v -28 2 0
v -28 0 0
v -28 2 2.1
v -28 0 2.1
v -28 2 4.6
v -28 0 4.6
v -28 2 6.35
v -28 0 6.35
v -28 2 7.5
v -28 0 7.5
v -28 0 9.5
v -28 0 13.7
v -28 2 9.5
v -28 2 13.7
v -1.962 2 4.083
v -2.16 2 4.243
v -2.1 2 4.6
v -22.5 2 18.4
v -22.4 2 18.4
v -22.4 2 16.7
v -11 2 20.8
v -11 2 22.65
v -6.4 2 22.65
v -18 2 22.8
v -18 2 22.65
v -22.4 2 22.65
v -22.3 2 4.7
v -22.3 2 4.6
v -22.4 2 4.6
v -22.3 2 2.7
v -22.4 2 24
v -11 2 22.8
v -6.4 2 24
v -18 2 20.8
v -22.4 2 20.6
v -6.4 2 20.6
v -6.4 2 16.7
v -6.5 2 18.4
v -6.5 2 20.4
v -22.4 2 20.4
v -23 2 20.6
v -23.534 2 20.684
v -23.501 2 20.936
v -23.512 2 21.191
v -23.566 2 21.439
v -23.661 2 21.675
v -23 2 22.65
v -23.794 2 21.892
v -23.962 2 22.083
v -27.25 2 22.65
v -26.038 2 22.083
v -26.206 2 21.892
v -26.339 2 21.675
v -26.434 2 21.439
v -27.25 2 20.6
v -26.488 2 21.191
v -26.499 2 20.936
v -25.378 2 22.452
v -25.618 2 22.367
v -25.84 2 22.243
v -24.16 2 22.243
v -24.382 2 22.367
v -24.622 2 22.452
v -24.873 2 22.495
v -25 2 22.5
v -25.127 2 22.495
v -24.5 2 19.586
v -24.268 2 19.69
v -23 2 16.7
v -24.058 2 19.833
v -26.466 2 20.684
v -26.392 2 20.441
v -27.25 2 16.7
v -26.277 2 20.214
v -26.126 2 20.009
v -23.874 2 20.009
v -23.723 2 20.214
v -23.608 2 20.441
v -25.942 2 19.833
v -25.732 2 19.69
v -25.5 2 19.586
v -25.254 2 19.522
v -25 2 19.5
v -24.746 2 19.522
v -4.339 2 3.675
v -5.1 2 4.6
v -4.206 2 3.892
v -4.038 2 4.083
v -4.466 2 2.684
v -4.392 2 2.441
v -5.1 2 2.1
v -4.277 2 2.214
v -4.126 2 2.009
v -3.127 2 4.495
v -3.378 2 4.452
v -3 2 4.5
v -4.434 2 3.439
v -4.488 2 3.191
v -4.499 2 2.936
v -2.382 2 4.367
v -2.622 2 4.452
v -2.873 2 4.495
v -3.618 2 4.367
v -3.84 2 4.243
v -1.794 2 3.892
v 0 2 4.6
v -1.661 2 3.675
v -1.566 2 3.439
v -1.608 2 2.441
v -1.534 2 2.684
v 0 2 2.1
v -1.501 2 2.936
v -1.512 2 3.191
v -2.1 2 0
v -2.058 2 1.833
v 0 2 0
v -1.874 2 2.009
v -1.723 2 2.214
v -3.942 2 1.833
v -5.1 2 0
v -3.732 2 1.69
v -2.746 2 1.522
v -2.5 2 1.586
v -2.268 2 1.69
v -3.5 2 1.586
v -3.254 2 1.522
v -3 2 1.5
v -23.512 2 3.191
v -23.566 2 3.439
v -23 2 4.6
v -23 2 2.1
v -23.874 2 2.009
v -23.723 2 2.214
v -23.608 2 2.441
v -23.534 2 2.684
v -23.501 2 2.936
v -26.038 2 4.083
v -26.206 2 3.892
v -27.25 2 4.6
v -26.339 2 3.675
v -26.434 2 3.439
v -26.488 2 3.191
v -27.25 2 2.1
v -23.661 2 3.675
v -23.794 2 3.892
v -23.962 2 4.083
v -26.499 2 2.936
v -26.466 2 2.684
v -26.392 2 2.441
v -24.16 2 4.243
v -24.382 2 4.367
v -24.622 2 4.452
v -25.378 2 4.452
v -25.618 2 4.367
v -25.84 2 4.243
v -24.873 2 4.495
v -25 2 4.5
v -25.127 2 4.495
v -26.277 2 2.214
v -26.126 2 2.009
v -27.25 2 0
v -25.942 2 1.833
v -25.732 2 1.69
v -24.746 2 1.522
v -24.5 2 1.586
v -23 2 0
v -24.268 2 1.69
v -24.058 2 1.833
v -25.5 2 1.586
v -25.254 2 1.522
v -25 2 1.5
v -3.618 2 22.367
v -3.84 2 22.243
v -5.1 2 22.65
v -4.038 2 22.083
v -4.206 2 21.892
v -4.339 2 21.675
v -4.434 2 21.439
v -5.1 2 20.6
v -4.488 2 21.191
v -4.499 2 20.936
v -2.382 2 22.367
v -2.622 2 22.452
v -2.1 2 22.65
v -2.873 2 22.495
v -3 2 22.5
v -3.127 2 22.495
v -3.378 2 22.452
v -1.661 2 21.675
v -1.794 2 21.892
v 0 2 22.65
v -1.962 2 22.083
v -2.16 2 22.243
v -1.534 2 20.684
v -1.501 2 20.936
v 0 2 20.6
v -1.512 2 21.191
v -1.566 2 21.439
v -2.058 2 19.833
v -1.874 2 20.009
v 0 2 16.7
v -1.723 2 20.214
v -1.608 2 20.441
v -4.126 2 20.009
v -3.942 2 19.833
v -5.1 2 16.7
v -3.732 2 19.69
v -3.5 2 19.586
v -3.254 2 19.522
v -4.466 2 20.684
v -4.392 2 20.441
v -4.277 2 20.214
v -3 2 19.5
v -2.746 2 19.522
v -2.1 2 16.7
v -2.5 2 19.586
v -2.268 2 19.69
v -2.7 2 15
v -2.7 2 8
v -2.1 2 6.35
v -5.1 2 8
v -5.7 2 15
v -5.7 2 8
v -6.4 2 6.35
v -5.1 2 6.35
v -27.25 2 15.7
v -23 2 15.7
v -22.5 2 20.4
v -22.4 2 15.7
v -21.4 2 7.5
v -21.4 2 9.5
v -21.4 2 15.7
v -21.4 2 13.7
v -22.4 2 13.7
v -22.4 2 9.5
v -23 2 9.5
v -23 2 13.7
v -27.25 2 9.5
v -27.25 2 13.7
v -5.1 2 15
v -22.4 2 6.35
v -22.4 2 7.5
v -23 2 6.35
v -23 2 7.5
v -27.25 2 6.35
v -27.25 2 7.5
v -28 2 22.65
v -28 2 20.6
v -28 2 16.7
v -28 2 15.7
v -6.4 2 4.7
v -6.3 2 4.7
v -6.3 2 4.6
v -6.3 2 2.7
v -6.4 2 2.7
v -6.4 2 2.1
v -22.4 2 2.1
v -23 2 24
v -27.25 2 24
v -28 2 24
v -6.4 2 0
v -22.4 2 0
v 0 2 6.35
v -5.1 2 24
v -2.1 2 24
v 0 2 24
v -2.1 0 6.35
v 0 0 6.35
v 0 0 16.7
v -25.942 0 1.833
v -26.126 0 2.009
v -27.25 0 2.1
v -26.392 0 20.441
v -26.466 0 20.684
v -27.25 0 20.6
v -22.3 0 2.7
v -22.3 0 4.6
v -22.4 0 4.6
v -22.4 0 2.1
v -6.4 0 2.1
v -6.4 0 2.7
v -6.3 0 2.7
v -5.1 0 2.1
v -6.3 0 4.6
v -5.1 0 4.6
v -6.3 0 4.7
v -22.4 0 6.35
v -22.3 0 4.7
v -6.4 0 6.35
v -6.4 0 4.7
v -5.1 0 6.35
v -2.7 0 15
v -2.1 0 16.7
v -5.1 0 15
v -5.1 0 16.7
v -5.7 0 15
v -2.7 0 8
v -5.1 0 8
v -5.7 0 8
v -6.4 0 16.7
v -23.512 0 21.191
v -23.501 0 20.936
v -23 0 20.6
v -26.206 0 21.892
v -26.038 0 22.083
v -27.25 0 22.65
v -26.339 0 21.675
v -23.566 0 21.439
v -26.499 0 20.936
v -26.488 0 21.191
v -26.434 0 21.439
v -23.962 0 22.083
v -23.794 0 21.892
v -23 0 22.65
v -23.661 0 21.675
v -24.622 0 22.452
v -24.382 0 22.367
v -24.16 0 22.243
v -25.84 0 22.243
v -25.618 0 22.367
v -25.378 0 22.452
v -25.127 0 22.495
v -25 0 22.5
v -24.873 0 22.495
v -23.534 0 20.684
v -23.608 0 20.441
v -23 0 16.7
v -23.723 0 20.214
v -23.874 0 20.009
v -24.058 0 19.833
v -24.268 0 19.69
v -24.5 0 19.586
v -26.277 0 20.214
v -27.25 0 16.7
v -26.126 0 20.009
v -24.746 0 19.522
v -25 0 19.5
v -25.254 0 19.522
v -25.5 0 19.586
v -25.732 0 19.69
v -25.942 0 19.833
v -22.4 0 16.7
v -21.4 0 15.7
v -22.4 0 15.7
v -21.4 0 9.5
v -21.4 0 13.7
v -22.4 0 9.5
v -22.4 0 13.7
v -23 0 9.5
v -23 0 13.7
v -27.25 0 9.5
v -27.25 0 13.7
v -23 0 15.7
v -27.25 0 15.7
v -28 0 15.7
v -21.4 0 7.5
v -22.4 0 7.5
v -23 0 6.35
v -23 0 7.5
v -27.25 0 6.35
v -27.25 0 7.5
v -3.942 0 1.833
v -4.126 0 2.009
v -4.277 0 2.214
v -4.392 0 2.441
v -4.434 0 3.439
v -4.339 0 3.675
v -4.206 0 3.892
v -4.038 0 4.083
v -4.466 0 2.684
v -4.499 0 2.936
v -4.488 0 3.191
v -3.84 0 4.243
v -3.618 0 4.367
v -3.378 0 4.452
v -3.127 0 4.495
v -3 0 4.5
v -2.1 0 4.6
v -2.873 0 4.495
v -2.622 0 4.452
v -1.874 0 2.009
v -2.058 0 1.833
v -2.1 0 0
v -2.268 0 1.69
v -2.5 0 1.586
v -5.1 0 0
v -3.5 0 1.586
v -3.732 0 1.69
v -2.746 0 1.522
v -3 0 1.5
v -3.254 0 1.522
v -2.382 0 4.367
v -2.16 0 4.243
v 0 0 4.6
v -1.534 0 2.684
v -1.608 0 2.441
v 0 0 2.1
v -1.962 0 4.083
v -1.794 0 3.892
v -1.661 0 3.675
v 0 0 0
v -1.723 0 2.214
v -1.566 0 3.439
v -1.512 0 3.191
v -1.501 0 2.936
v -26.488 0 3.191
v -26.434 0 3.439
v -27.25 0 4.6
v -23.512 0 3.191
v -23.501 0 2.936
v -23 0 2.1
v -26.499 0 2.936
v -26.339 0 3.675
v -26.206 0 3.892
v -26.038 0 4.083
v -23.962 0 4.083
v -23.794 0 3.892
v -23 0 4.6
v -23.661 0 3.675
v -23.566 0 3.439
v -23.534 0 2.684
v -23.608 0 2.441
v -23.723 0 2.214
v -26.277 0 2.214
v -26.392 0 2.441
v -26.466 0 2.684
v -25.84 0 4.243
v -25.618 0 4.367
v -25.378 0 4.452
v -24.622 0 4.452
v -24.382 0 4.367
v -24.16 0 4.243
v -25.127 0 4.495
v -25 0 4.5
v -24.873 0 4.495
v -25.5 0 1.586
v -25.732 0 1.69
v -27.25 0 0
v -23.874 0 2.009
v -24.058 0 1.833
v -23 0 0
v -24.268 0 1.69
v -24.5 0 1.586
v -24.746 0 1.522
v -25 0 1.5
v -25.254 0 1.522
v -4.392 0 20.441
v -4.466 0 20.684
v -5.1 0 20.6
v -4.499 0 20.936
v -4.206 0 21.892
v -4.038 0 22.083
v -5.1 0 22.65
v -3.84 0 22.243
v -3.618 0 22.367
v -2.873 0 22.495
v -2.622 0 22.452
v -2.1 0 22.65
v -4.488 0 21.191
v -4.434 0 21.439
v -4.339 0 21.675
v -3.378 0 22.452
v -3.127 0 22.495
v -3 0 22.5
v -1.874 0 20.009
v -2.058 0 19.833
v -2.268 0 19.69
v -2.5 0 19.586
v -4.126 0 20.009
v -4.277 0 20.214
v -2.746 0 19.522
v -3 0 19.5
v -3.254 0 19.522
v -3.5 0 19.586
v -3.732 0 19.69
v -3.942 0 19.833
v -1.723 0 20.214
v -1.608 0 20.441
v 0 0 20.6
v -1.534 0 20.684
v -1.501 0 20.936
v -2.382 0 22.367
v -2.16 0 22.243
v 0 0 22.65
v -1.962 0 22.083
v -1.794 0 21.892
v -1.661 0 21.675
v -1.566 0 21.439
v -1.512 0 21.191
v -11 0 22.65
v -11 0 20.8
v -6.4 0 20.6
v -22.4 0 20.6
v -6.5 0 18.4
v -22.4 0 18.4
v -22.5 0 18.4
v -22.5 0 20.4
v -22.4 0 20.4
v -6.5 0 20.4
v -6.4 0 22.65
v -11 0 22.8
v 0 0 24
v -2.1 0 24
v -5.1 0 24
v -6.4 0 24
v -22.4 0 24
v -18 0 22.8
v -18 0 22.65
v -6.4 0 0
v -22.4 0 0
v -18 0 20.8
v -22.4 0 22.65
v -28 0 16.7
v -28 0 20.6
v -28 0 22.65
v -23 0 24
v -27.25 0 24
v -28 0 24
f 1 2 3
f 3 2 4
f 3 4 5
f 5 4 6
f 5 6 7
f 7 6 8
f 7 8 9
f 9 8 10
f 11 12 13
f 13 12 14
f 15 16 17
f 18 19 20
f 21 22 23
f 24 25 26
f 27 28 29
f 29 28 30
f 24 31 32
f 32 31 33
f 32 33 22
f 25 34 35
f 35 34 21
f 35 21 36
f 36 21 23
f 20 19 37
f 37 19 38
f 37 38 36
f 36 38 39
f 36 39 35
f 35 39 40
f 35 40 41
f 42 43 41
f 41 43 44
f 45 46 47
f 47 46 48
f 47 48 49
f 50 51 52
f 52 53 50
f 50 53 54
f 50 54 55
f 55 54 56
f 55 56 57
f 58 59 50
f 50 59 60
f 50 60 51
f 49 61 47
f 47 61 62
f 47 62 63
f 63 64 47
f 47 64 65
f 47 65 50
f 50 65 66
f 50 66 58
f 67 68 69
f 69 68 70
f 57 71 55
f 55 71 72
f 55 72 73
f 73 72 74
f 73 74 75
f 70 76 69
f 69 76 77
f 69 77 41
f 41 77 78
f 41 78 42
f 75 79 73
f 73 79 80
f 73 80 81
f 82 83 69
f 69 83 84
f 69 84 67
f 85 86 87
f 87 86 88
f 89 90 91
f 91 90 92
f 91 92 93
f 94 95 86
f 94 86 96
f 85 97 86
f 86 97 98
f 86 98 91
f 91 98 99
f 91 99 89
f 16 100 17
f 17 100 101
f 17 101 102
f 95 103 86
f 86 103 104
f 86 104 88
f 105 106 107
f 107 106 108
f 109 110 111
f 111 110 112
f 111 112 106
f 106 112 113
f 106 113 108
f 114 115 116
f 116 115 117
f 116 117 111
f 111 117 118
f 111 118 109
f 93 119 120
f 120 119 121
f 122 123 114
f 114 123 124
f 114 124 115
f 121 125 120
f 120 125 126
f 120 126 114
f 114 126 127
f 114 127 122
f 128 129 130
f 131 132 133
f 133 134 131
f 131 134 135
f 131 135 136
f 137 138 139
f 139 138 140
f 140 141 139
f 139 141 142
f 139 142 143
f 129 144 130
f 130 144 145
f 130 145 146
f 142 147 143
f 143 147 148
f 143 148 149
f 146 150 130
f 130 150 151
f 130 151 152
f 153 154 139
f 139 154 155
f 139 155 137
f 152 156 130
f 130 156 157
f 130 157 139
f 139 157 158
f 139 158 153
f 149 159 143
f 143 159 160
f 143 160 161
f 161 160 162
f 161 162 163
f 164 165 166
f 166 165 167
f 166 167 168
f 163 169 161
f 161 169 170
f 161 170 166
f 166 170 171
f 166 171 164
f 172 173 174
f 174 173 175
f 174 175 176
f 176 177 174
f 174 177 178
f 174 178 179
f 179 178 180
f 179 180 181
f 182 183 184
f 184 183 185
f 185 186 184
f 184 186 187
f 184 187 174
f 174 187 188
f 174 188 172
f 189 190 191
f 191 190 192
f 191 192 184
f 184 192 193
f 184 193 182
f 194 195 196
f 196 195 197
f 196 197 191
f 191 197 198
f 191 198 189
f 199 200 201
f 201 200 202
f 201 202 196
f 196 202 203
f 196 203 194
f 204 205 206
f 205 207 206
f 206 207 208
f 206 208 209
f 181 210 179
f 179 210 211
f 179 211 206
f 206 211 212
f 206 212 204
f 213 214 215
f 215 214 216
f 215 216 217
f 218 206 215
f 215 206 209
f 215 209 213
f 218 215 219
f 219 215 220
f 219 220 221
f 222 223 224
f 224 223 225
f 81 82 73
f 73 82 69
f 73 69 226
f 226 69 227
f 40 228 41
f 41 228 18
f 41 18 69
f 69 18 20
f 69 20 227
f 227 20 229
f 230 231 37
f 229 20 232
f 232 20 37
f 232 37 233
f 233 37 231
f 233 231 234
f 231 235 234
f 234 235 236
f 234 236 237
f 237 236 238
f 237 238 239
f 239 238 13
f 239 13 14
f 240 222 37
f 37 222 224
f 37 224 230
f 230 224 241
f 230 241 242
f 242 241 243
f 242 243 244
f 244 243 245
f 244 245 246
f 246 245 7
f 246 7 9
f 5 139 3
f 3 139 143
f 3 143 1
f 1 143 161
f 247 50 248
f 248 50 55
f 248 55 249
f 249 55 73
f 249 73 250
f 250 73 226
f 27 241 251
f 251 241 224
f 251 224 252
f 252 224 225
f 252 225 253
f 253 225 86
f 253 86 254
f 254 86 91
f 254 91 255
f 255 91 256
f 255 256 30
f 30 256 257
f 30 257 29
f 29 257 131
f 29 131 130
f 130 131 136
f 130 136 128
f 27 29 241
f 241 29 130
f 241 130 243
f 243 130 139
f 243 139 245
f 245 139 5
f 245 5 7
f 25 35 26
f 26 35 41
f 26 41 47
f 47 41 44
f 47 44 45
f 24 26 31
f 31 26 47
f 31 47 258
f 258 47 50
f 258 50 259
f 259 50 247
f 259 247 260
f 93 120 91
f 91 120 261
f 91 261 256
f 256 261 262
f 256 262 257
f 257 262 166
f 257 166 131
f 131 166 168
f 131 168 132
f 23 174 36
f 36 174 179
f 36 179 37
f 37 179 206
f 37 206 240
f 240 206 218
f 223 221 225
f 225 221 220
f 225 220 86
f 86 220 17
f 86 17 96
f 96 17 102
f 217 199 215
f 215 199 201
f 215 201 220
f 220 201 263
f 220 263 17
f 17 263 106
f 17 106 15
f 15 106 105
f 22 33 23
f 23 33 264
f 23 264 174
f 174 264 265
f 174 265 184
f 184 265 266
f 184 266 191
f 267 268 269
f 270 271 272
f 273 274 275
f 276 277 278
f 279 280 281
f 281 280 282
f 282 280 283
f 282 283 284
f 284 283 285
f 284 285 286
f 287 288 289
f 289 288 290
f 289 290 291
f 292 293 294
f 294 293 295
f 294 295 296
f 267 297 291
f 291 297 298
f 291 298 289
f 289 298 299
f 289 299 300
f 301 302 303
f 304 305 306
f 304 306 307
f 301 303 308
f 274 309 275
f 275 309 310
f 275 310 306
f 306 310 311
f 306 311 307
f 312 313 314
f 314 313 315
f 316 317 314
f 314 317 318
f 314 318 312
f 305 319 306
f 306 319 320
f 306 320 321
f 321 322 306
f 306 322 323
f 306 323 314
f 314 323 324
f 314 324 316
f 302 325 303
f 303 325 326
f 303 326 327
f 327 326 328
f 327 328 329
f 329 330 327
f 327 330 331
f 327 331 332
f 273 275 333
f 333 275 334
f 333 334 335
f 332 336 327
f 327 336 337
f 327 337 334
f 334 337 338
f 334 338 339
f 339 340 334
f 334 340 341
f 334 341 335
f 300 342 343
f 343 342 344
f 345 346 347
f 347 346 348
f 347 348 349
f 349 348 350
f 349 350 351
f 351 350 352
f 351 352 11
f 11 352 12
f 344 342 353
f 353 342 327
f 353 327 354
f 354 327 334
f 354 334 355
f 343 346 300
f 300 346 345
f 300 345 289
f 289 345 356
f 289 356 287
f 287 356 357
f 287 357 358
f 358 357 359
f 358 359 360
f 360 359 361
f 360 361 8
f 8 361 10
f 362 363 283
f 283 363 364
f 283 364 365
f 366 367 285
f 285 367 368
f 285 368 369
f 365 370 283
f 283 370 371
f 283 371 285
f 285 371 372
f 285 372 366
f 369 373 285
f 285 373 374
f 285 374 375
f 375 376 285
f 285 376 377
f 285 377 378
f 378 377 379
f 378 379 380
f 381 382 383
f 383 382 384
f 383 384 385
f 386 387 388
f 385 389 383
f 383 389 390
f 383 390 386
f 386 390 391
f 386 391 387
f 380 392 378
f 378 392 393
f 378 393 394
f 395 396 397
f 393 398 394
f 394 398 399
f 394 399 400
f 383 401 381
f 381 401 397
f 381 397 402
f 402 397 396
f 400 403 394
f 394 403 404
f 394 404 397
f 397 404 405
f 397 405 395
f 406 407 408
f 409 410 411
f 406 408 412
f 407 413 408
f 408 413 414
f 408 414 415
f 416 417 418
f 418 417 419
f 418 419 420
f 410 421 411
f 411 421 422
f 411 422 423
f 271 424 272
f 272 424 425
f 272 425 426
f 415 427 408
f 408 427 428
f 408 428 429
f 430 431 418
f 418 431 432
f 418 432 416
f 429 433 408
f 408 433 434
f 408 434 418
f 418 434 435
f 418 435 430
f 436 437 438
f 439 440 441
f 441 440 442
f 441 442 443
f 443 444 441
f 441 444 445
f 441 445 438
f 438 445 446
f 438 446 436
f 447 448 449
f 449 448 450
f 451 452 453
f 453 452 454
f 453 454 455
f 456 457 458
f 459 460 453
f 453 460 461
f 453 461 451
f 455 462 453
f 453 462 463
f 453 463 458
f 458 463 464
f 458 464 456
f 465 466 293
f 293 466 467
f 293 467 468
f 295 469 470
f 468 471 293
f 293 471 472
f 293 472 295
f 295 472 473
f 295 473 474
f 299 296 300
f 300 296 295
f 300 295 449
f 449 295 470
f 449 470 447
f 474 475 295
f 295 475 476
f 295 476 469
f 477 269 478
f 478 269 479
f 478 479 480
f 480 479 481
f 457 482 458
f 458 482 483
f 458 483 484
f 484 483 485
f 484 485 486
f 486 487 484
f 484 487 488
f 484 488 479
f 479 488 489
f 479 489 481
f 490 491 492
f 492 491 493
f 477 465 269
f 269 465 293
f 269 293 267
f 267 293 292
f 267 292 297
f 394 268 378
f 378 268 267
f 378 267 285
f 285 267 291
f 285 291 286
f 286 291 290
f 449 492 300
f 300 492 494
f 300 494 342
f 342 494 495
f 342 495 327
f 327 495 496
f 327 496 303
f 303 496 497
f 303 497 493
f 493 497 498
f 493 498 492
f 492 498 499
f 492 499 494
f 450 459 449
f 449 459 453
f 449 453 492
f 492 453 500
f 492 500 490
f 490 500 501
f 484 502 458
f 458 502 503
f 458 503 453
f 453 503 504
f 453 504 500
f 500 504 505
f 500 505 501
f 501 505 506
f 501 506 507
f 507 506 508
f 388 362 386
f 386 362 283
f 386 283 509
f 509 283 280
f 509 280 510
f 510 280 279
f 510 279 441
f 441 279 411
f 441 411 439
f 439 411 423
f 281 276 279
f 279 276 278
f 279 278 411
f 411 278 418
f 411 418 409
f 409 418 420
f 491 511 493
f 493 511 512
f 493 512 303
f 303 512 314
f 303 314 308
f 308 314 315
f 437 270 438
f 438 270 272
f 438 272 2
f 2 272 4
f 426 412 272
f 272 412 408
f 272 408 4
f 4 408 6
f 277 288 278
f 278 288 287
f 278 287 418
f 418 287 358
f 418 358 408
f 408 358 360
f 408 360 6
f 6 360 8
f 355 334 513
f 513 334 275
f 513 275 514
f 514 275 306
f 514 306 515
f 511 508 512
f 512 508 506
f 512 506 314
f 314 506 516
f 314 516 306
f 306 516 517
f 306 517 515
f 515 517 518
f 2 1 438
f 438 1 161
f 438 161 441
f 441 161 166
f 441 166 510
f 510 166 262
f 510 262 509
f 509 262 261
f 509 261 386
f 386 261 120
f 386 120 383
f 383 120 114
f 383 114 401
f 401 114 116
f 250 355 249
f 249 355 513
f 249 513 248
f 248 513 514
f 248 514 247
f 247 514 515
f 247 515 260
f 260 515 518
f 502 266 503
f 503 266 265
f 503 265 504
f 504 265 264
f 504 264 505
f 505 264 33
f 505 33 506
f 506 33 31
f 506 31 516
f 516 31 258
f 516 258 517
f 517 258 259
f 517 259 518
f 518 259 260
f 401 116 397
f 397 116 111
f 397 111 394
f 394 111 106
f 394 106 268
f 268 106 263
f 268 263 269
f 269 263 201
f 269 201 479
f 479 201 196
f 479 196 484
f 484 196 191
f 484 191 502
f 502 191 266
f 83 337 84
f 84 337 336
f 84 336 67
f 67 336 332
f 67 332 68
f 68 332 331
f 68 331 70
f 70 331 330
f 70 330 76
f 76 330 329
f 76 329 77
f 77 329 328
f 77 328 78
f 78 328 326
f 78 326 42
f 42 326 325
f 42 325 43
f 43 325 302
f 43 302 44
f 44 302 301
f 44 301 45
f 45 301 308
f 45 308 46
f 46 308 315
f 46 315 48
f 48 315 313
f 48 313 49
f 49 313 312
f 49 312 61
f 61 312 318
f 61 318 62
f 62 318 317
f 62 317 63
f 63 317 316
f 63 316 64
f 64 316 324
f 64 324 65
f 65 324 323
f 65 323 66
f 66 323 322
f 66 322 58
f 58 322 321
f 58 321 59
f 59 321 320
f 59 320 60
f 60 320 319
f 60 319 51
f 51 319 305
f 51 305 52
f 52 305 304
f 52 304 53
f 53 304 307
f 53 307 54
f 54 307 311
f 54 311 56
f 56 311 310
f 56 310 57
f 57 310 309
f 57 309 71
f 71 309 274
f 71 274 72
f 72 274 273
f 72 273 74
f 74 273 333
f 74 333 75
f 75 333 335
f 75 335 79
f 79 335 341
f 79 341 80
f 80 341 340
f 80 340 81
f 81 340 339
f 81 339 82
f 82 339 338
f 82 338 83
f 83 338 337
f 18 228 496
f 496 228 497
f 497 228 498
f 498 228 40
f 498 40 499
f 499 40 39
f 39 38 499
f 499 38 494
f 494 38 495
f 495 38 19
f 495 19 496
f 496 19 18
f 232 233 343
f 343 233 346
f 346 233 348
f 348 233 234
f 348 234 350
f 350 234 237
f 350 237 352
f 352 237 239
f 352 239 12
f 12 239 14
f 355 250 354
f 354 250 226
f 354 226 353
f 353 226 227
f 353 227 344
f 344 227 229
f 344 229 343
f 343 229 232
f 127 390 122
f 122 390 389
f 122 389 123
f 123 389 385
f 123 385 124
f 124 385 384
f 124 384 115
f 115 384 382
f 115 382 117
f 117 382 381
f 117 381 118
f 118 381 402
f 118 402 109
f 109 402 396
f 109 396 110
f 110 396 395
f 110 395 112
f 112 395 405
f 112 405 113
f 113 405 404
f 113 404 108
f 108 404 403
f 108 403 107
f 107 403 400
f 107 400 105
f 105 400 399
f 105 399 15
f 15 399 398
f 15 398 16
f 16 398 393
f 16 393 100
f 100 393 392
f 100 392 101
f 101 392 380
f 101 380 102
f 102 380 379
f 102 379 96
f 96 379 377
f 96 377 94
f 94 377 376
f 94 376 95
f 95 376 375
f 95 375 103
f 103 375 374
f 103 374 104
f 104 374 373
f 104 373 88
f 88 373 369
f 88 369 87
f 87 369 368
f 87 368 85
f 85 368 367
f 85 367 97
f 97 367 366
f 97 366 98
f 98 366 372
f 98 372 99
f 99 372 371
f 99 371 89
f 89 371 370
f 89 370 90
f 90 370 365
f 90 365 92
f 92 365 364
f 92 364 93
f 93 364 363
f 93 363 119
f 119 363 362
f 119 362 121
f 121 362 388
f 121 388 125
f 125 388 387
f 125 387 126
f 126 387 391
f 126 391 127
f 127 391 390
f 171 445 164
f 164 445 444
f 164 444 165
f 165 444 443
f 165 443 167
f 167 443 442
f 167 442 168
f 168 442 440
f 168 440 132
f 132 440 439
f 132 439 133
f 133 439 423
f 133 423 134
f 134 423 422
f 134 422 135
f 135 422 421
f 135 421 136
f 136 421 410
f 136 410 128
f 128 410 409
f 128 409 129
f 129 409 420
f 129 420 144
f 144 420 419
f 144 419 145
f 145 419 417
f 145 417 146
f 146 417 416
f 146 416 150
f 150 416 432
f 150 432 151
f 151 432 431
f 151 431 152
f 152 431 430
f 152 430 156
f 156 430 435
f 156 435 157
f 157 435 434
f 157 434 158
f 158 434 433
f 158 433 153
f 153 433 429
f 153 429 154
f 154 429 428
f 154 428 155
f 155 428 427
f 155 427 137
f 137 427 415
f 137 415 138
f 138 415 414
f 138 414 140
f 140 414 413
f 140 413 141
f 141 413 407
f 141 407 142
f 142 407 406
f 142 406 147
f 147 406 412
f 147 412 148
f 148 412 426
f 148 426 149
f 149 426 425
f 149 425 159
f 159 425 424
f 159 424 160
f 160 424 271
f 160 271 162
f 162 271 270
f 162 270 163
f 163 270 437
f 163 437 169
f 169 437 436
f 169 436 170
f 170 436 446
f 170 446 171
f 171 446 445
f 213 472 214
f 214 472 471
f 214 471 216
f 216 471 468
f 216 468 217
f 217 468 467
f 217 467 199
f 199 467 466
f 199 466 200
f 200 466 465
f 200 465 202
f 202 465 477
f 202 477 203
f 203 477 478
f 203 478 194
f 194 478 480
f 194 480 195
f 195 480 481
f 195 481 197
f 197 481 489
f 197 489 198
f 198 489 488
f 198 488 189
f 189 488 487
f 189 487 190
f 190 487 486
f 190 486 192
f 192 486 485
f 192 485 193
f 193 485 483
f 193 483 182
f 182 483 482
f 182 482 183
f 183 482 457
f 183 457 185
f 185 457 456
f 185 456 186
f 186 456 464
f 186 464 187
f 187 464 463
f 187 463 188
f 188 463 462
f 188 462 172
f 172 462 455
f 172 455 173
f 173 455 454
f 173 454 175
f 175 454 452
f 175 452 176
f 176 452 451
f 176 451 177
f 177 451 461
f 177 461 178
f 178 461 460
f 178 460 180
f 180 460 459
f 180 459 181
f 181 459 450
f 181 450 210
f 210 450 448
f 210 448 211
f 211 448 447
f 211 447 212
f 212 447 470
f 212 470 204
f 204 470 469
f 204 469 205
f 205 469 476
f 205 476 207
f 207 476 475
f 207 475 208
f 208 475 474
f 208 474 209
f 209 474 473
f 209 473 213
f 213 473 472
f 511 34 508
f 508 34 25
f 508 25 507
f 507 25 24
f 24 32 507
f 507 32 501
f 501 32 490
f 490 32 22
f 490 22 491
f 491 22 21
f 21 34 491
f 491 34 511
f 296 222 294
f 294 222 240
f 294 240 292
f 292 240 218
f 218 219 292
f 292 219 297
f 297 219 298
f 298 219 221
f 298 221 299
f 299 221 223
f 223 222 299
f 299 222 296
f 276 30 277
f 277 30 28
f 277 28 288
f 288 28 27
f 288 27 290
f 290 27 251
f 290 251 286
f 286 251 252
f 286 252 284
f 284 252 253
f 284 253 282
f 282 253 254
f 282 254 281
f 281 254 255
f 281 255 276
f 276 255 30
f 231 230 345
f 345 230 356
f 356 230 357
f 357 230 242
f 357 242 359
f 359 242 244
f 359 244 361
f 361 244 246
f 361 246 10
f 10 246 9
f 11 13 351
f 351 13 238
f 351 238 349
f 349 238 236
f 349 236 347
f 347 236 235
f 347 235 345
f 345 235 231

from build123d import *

# Parameters (mm, degrees)
SKETCH_1_W          = 28
SKETCH_1_H          = 24
EXTRUDE_1_DEPTH     = 2
SKETCH_1_5_R        = 1.5
SKETCH_1_5_W        = 7
SKETCH_1_5_H        = 2
SKETCH_1_5_W_2      = 3
SKETCH_1_5_H_2      = 7
SKETCH_1_5_W_3      = 16
SKETCH_1_5_W_4      = 6.6
CUT_EXTRUDE_1_DEPTH = 37.932370625


with BuildPart() as part:
    # 草图1 → 凸台-拉伸1 (new body)
    with BuildSketch(Plane(origin=(0, 0, 0), x_dir=(1, 0, 0), z_dir=(0, 1, 0))):
        with Locations((-14, -12)):
            Rectangle(SKETCH_1_W, SKETCH_1_H)
    extrude(amount=EXTRUDE_1_DEPTH)

    # 草图1<5> → 切除-拉伸1 (cut, through all)
    with BuildSketch(Plane(origin=(0, 0, 0), x_dir=(1, 0, 0), z_dir=(0, 1, 0))):
        with Locations((-25, -3)):
            Circle(SKETCH_1_5_R)
        with Locations((-3, -3)):
            Circle(SKETCH_1_5_R)
        with Locations((-25, -21)):
            Circle(SKETCH_1_5_R)
        with Locations((-3, -21)):
            Circle(SKETCH_1_5_R)
        with Locations((-14.5, -21.8)):
            Rectangle(SKETCH_1_5_W, SKETCH_1_5_H)
        with Locations((-4.2, -11.5)):
            Rectangle(SKETCH_1_5_W_2, SKETCH_1_5_H_2)
        with Locations((-14.3, -3.7)):
            Rectangle(SKETCH_1_5_W_3, SKETCH_1_5_H)
        with Locations((-24.7, -14.7)):
            Rectangle(SKETCH_1_5_W_4, SKETCH_1_5_H)
        with Locations((-24.7, -8.5)):
            Rectangle(SKETCH_1_5_W_4, SKETCH_1_5_H)
        with Locations((-14.5, -19.4)):
            Rectangle(SKETCH_1_5_W_3, SKETCH_1_5_H)
    extrude(amount=CUT_EXTRUDE_1_DEPTH, mode=Mode.SUBTRACT)


solid = part.part
